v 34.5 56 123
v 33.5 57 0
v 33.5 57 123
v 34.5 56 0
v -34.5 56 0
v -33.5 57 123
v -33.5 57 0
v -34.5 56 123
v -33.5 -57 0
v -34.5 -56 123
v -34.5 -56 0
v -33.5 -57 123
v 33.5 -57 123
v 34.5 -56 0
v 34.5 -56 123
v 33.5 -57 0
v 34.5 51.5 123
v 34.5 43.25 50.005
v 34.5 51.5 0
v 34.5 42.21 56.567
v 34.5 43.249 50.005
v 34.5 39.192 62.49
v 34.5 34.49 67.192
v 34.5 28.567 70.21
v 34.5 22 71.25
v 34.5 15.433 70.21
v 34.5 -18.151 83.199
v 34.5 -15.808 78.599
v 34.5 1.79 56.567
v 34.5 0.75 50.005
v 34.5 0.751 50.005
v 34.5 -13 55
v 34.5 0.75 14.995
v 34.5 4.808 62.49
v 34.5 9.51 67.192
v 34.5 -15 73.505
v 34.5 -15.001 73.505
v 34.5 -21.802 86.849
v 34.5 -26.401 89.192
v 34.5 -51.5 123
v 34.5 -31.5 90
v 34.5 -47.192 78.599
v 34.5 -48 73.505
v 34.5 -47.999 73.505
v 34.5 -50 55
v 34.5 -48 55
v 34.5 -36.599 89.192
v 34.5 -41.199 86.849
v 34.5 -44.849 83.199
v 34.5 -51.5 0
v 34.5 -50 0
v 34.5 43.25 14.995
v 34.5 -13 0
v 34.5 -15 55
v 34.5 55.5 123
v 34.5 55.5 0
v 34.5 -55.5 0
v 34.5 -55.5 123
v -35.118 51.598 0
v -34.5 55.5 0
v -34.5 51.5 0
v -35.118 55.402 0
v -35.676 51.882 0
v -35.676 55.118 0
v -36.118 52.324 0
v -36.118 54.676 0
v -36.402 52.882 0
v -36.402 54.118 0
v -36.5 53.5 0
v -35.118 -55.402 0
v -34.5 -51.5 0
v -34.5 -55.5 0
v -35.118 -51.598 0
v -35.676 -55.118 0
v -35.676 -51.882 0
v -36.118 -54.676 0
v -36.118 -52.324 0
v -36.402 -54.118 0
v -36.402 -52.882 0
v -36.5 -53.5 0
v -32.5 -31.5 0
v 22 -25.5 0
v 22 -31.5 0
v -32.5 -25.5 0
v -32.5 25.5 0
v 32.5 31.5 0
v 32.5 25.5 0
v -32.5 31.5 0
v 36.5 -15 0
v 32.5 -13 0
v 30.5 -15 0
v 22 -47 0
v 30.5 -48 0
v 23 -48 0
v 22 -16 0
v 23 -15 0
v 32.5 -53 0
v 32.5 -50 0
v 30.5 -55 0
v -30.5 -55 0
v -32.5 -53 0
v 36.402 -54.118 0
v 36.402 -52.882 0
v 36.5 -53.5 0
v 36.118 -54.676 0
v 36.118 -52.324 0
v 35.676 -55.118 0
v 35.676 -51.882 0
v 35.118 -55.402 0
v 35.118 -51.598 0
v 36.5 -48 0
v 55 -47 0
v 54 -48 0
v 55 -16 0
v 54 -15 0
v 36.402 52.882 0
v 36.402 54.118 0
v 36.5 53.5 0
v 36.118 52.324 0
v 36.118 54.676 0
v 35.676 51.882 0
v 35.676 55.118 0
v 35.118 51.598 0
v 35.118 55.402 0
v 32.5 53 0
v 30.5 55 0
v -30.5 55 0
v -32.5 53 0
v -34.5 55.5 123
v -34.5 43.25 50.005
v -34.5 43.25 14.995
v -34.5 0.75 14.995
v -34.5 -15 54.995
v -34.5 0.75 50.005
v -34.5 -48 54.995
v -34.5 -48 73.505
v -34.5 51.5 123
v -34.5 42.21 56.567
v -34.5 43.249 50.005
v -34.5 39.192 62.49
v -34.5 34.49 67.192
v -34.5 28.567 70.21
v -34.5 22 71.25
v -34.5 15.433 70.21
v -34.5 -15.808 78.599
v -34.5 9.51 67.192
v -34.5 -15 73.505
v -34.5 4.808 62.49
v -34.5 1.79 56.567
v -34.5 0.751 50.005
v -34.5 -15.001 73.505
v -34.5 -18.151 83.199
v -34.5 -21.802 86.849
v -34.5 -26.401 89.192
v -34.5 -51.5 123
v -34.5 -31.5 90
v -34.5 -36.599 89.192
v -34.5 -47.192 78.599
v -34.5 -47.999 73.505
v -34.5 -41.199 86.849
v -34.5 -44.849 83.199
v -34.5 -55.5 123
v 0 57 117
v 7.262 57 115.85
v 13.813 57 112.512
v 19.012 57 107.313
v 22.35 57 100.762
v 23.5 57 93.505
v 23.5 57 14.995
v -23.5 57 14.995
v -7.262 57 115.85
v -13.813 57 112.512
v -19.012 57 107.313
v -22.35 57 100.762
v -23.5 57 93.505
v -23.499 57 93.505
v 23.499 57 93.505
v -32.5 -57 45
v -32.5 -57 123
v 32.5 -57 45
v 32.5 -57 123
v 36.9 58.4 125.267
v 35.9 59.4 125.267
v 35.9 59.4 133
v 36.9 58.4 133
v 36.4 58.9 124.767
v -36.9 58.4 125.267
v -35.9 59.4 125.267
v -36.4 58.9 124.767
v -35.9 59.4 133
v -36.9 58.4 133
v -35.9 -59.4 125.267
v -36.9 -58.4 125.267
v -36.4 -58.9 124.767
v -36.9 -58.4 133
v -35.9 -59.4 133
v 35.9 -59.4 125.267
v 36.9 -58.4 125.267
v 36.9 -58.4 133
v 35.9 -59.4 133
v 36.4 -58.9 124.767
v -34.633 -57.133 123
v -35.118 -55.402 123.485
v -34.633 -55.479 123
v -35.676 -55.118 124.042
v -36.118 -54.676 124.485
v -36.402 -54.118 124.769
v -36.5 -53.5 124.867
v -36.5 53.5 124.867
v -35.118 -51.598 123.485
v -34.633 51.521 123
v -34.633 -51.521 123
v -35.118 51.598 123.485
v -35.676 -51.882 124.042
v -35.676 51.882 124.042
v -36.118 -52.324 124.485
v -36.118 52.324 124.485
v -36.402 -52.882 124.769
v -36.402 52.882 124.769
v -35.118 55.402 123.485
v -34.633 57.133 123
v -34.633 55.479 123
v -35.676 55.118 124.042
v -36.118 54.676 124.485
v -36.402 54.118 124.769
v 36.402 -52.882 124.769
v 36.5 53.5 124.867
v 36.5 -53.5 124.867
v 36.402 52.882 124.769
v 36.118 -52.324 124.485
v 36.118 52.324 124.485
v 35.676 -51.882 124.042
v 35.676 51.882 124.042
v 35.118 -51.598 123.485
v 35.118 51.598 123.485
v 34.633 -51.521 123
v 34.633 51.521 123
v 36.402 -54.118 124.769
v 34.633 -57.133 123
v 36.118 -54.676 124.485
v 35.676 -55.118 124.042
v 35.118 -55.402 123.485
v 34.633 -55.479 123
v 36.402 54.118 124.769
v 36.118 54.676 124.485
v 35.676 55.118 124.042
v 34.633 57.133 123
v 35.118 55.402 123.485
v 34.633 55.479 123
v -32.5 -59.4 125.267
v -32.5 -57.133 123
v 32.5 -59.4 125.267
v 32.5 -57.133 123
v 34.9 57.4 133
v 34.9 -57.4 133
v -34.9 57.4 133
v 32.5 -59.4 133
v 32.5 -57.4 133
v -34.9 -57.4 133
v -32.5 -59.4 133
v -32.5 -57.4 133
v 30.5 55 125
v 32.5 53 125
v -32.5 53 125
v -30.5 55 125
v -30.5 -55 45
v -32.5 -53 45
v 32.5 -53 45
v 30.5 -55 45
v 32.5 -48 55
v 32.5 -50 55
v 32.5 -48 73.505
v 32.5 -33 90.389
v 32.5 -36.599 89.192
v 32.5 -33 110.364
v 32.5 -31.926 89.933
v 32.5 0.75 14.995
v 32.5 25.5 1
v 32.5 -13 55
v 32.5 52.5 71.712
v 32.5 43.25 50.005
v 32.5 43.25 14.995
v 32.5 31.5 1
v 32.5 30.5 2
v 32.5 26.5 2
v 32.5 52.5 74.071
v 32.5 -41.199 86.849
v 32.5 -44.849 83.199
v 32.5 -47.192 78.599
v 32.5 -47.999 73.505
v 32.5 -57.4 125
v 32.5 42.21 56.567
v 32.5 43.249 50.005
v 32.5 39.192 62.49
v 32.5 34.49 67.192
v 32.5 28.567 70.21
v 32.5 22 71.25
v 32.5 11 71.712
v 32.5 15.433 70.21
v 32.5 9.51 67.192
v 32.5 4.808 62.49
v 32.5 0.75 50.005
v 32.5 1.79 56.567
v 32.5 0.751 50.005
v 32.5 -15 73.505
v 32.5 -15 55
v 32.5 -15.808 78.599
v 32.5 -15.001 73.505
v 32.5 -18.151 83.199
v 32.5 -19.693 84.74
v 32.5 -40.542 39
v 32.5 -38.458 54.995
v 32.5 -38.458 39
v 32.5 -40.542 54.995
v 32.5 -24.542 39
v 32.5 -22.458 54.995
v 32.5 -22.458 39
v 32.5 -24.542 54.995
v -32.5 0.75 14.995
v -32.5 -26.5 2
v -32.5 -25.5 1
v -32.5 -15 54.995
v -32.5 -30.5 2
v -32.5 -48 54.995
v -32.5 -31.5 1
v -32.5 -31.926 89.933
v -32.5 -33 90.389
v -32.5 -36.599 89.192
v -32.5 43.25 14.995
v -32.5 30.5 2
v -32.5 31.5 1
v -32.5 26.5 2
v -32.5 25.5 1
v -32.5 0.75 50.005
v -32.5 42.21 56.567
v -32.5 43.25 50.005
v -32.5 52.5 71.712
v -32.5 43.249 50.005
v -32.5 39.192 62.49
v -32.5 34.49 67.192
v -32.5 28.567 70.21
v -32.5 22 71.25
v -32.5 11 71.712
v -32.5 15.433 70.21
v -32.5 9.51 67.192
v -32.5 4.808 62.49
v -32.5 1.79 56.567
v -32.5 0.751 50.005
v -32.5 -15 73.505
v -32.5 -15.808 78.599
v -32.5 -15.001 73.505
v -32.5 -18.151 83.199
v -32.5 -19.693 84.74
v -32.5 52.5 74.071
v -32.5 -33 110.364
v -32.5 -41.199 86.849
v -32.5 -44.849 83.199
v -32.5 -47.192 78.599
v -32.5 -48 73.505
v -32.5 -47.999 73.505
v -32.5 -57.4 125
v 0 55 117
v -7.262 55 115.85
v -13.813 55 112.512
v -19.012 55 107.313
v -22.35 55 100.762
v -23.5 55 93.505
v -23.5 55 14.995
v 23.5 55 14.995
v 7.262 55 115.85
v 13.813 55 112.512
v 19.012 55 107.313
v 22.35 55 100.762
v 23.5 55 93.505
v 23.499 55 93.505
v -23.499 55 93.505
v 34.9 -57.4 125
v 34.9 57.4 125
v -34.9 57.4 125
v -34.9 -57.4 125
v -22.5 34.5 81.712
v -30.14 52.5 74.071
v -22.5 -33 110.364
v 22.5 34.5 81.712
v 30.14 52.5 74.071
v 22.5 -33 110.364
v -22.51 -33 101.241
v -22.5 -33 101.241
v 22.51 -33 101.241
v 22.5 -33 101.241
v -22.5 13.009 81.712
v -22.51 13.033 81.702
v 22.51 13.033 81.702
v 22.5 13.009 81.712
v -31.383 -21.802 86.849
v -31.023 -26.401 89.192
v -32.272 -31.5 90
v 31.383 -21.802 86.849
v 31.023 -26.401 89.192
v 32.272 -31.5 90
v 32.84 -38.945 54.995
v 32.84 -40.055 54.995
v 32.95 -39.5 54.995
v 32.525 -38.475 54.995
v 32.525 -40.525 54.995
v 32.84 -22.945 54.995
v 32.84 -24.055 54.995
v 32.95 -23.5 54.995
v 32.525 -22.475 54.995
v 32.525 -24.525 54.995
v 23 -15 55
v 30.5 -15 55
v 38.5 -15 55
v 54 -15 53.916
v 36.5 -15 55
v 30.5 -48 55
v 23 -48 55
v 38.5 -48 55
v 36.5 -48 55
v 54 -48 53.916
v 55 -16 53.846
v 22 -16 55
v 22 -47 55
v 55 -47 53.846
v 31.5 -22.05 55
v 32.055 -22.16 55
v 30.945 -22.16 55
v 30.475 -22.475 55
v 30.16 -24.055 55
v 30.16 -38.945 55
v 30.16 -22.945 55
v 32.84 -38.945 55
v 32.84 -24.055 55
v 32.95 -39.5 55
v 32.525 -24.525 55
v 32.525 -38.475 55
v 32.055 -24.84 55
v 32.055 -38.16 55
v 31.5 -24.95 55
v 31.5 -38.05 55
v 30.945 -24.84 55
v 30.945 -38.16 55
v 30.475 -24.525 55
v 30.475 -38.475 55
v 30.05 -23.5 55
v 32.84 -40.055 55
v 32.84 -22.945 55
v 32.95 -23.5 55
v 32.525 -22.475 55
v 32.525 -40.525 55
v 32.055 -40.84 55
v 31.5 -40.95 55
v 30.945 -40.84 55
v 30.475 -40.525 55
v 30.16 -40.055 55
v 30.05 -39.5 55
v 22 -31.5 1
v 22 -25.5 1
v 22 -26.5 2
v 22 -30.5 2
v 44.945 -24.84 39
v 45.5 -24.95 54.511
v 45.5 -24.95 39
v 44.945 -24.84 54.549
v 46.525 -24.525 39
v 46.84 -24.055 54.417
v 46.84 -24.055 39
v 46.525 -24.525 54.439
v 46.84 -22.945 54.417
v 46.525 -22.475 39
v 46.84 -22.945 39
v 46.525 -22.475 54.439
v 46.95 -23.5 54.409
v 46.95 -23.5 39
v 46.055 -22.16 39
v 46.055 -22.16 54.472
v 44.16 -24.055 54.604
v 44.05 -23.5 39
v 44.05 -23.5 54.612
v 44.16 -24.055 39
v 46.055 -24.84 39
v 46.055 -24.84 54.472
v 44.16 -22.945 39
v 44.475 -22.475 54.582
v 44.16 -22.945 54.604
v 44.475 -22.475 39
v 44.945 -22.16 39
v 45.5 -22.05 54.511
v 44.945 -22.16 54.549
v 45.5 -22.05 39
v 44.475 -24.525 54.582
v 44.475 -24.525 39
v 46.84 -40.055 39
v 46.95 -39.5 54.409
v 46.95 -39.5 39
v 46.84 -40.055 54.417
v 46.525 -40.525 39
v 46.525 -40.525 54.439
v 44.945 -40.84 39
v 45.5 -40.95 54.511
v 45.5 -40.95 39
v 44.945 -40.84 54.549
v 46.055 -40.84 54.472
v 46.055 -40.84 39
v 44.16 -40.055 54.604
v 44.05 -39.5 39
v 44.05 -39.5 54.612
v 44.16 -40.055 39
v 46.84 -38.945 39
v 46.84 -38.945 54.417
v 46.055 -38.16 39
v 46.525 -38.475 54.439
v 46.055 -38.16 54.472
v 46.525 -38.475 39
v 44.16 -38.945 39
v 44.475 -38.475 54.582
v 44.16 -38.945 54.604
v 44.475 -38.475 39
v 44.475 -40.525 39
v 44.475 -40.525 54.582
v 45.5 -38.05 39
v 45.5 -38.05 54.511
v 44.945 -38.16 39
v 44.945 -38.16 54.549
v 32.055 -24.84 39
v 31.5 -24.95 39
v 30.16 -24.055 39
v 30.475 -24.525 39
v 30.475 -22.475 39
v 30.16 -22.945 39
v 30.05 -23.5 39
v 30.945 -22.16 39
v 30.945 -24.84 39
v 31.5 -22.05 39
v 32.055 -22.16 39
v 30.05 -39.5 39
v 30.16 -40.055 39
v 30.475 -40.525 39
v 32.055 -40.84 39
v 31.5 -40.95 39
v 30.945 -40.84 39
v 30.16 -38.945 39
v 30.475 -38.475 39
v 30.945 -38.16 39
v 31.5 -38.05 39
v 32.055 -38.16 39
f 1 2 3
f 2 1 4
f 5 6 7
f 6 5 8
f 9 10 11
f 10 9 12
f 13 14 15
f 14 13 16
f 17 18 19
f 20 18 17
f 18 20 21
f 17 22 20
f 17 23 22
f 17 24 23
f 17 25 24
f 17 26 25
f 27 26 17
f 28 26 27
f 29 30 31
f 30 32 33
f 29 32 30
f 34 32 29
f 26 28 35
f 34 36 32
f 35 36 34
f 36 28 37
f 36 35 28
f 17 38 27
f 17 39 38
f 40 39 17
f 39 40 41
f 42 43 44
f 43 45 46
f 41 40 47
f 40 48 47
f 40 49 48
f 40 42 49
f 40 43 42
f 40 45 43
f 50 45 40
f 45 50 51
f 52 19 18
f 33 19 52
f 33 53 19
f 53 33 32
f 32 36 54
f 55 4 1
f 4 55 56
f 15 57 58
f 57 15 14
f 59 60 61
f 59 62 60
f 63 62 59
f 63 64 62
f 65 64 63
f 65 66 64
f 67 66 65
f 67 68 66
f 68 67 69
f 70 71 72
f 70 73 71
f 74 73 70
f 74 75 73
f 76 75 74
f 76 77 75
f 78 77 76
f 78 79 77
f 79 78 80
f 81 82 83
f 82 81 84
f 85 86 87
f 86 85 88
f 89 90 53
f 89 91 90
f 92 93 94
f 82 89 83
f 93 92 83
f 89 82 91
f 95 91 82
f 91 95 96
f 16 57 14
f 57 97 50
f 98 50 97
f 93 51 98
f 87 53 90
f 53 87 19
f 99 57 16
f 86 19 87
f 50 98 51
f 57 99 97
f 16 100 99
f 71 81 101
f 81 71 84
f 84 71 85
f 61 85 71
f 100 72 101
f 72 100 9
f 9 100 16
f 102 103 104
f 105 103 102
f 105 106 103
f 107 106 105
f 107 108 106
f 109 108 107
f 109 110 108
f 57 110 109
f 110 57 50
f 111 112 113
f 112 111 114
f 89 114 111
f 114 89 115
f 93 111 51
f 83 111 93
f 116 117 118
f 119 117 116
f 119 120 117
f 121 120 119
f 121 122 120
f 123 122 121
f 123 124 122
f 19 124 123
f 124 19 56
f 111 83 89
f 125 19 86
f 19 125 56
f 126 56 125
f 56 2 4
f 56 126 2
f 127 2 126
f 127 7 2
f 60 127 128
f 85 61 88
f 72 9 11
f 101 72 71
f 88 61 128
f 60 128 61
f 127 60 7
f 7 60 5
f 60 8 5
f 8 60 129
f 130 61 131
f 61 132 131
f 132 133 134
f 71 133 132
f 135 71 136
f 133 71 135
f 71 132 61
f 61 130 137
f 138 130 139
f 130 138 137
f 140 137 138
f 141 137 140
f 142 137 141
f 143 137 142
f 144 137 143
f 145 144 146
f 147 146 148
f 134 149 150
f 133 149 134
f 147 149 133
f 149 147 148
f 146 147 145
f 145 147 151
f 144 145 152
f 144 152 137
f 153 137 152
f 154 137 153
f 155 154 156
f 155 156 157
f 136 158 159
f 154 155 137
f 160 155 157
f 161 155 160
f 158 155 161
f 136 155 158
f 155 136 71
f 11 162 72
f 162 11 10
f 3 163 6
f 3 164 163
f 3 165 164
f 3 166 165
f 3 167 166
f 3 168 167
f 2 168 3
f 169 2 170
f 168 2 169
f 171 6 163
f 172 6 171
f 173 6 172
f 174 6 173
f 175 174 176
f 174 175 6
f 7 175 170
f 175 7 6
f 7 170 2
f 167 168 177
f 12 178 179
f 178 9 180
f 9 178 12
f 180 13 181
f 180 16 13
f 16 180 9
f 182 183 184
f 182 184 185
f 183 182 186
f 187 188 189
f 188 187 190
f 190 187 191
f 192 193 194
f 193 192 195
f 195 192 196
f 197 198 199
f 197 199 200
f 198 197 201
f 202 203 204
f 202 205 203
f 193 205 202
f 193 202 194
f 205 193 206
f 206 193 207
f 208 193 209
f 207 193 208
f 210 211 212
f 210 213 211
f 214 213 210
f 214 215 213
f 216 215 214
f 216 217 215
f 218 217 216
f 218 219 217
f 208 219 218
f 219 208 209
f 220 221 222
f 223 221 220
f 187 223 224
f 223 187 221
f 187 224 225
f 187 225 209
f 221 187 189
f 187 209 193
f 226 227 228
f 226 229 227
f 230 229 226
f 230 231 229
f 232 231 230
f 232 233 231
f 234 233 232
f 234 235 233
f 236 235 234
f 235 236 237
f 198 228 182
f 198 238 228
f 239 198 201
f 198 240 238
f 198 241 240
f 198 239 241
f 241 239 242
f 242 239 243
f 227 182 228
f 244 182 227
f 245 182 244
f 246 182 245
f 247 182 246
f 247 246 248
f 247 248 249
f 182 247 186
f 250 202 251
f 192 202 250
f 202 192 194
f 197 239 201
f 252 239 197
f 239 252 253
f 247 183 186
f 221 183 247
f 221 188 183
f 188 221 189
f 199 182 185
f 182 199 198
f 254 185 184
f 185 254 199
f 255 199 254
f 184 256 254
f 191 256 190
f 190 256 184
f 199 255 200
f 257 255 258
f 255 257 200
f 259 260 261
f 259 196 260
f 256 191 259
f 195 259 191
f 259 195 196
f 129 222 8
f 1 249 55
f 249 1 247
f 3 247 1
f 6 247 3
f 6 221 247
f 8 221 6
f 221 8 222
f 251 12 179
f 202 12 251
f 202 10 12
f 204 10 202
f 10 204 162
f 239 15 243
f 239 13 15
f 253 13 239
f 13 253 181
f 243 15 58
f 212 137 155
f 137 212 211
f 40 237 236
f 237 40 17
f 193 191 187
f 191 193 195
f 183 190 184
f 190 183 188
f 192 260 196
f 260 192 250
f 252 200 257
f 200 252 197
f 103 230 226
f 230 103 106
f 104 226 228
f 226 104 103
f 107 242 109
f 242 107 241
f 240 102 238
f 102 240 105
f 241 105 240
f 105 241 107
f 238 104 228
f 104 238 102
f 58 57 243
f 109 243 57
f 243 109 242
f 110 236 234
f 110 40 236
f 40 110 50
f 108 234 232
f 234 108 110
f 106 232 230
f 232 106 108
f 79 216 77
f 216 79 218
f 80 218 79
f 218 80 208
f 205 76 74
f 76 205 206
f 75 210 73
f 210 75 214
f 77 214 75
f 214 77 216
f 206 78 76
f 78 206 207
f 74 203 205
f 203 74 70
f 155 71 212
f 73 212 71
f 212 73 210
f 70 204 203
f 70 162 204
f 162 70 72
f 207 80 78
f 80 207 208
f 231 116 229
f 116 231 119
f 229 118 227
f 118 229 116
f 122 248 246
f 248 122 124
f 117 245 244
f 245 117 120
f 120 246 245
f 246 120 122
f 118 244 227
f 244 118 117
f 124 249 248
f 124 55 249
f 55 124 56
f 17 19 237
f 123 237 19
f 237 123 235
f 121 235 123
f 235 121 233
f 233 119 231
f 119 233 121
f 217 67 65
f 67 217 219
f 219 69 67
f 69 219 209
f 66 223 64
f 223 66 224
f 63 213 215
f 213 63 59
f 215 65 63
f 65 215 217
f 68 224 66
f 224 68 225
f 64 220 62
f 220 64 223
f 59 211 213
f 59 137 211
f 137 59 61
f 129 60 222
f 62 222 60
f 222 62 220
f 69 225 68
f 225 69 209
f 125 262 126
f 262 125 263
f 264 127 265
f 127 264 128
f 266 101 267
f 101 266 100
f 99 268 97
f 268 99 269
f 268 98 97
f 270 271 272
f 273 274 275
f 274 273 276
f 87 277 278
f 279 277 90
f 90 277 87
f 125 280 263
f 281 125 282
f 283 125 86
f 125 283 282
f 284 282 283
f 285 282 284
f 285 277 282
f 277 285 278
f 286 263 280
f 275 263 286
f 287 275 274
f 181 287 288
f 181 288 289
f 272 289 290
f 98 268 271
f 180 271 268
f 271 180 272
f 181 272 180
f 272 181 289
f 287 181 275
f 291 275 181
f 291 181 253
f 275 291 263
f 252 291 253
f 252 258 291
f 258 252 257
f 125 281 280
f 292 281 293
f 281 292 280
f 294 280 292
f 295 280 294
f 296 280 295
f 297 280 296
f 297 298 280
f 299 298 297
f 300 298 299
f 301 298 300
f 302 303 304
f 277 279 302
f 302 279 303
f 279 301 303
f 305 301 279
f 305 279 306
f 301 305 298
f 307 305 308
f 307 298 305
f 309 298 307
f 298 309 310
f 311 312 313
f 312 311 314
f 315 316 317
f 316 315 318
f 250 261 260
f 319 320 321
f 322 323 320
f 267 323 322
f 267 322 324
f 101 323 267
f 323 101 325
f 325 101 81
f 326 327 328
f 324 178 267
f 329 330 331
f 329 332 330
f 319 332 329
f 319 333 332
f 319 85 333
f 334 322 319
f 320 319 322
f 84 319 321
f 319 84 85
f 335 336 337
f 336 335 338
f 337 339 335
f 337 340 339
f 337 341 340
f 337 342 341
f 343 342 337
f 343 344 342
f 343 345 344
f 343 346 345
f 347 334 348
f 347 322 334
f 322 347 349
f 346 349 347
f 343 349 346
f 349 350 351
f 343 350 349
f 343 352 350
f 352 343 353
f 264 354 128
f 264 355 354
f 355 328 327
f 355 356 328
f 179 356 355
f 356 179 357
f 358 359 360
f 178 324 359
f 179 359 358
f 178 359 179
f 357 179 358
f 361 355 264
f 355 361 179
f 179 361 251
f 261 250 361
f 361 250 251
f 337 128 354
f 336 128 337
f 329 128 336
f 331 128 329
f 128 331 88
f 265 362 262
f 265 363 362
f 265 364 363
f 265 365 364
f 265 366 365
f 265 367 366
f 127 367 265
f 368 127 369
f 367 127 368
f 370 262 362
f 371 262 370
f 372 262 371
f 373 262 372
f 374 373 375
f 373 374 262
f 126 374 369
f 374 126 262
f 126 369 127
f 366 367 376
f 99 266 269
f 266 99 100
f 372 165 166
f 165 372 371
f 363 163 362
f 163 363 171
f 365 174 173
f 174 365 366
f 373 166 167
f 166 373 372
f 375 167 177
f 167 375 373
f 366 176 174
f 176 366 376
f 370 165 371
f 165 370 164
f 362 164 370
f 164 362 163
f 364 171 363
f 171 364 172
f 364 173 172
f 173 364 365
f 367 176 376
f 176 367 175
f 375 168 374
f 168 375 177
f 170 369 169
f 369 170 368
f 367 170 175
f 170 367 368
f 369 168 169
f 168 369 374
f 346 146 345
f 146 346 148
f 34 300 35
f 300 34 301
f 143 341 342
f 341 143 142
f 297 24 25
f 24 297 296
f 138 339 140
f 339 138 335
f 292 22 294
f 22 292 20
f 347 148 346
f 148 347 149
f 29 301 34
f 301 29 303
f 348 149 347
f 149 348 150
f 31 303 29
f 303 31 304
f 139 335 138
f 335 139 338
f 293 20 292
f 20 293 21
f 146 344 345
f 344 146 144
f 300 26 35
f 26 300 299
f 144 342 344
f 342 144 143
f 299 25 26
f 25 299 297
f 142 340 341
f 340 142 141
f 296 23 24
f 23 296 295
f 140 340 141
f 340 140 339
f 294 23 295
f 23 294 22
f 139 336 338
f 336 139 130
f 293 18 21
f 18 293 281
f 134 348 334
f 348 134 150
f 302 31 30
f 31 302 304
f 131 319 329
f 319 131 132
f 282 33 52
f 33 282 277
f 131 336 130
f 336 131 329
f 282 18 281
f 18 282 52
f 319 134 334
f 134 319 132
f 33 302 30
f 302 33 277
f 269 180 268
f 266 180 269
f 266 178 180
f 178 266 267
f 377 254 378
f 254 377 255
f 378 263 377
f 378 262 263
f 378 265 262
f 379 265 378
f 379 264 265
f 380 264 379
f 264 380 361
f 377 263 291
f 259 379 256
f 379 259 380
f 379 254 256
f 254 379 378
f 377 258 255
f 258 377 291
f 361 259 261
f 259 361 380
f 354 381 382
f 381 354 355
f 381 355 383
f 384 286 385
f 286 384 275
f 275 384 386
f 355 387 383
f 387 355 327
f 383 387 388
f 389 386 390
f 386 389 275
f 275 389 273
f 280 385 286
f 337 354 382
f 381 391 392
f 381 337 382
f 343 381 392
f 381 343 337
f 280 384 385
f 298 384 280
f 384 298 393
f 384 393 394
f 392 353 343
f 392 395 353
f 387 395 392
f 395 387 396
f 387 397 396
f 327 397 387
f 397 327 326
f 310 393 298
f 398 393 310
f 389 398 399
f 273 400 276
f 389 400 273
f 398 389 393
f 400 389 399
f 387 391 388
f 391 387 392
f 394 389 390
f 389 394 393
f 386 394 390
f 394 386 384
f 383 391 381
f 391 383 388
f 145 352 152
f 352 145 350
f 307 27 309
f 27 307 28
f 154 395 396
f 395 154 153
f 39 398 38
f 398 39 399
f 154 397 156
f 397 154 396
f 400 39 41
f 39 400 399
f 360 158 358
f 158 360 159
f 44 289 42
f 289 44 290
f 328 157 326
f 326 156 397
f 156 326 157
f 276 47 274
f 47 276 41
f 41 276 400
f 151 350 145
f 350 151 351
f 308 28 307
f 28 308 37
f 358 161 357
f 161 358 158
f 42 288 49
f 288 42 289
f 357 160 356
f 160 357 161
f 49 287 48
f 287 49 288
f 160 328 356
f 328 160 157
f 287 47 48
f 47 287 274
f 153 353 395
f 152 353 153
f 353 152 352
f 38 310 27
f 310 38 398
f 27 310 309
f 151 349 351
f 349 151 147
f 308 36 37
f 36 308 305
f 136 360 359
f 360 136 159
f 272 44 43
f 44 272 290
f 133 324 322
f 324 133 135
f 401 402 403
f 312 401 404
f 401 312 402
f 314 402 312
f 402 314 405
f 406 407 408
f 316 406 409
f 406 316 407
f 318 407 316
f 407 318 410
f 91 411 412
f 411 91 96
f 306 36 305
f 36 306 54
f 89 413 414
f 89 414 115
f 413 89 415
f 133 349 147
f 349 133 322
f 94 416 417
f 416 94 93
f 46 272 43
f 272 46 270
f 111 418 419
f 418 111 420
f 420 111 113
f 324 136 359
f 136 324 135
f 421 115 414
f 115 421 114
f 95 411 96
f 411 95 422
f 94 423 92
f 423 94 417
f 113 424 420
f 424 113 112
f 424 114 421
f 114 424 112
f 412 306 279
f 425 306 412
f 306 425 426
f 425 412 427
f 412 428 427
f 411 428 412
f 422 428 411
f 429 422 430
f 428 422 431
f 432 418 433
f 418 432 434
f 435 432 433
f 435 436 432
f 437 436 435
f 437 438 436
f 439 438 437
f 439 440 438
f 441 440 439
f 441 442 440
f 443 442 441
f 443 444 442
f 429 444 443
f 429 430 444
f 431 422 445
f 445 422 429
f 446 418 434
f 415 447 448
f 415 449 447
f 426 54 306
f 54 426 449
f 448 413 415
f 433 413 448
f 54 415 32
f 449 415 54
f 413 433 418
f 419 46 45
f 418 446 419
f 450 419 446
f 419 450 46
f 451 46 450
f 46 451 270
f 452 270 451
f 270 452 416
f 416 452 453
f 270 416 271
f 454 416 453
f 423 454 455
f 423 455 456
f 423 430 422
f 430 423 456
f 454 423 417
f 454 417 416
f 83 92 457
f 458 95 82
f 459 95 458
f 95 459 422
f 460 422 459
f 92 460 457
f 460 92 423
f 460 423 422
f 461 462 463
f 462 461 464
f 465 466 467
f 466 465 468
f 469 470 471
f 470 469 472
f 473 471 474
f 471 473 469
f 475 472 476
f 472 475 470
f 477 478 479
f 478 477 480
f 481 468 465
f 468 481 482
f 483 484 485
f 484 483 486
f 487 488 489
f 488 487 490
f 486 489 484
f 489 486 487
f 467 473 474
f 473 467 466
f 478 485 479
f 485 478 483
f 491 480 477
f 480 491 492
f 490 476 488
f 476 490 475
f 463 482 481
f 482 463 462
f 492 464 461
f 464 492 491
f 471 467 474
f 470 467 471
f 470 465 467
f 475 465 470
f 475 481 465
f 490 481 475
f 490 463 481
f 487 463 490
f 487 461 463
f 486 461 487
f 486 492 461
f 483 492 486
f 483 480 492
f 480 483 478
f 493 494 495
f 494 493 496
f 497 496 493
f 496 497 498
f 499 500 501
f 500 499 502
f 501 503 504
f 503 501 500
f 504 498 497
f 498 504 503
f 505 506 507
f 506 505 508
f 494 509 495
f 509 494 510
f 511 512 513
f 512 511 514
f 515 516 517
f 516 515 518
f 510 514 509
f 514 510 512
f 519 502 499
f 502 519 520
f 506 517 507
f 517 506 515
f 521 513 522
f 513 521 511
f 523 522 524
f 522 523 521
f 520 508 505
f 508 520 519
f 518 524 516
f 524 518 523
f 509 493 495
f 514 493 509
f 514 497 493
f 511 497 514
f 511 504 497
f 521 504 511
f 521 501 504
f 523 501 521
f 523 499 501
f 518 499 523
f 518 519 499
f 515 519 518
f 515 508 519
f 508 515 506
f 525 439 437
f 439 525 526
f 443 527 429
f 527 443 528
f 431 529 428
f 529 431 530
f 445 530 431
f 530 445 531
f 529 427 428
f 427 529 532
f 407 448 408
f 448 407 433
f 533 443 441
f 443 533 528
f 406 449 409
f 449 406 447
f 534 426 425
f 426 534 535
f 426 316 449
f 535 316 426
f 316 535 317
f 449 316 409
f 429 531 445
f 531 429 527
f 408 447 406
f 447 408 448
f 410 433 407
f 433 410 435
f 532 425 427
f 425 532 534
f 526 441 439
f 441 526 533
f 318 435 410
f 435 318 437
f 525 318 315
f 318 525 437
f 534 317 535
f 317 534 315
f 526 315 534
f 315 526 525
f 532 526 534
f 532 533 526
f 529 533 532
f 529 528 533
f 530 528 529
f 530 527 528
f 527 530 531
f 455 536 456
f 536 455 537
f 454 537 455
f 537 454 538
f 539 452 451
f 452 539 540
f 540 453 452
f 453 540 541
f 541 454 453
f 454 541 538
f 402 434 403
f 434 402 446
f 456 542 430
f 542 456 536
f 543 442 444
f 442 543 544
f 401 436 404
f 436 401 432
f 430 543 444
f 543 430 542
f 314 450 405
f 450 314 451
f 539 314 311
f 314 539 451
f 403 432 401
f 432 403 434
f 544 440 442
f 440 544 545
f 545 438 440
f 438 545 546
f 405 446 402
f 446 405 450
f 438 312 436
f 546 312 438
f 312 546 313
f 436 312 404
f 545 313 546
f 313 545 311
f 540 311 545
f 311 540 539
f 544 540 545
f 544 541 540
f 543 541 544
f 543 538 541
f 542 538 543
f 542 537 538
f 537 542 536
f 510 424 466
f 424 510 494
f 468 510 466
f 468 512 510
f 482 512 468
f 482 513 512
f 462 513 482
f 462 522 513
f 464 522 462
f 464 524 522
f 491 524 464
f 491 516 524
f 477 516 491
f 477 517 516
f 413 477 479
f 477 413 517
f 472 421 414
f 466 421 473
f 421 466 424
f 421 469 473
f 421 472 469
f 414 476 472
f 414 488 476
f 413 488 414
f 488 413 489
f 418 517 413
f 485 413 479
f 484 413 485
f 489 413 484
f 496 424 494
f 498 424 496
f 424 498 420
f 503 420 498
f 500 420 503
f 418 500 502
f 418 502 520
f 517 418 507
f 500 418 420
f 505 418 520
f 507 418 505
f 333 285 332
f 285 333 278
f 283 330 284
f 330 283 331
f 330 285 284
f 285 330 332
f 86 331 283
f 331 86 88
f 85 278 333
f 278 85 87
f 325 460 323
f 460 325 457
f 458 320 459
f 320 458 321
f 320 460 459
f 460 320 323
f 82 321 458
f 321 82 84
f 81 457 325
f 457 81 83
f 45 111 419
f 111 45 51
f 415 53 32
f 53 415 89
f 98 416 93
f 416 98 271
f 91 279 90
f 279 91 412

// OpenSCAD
/*

  tcsm_eject.scad
  
  2021 (c) olikraus@gmail.com

  This work is licensed under the Creative Commons Attribution-NonCommercial-ShareAlike 4.0 International License.
  To view a copy of this license, visit http://creativecommons.org/licenses/by-nc-sa/4.0/.


  Problems 7 Mar 2021
  - Wheel is too high   --> fixed by 1 mm
  - Card gap is too small --> fixed by 1 mm
  - Both arcs are brocken --> fixed with some additional edge corner
  - motor holder block mount screw diameter too small --> fixed by 0.1mm
  - Reduced height of the motor holder (for faster printing)  --> done
  - Leave gap at the lower end of the rail --> done
  14 Mar 2021
  - Both arcs are still brocken --> reduced edge corner (because of sorter rail), added outer support
  
  21 Mar 2021
  - Bugfix: Added pile_gap --> done
  - Added slope to motor mount block --> done
  
   22 Mar 2021
  - Motor must be higher --> 10m --> done
  - lower the support towards sorter house --> done

   24 Mar 2021
   - Increased eject house height to 125 (130 with pile holder)
   
   5 Apr 2021
   - The eject house should be longer, so that the
     wheel is more at the upper end of the cards
     --> Done

   4 Jul 2021
   - Increase slope from 22 to 23 --> Done
   - Extend the eject hourse from 14 to 19, so that
     the wheel is even more at the end of the cards --> DONE


*/


include <trading_card_compare_machine.scad>;

eject_house(false);
